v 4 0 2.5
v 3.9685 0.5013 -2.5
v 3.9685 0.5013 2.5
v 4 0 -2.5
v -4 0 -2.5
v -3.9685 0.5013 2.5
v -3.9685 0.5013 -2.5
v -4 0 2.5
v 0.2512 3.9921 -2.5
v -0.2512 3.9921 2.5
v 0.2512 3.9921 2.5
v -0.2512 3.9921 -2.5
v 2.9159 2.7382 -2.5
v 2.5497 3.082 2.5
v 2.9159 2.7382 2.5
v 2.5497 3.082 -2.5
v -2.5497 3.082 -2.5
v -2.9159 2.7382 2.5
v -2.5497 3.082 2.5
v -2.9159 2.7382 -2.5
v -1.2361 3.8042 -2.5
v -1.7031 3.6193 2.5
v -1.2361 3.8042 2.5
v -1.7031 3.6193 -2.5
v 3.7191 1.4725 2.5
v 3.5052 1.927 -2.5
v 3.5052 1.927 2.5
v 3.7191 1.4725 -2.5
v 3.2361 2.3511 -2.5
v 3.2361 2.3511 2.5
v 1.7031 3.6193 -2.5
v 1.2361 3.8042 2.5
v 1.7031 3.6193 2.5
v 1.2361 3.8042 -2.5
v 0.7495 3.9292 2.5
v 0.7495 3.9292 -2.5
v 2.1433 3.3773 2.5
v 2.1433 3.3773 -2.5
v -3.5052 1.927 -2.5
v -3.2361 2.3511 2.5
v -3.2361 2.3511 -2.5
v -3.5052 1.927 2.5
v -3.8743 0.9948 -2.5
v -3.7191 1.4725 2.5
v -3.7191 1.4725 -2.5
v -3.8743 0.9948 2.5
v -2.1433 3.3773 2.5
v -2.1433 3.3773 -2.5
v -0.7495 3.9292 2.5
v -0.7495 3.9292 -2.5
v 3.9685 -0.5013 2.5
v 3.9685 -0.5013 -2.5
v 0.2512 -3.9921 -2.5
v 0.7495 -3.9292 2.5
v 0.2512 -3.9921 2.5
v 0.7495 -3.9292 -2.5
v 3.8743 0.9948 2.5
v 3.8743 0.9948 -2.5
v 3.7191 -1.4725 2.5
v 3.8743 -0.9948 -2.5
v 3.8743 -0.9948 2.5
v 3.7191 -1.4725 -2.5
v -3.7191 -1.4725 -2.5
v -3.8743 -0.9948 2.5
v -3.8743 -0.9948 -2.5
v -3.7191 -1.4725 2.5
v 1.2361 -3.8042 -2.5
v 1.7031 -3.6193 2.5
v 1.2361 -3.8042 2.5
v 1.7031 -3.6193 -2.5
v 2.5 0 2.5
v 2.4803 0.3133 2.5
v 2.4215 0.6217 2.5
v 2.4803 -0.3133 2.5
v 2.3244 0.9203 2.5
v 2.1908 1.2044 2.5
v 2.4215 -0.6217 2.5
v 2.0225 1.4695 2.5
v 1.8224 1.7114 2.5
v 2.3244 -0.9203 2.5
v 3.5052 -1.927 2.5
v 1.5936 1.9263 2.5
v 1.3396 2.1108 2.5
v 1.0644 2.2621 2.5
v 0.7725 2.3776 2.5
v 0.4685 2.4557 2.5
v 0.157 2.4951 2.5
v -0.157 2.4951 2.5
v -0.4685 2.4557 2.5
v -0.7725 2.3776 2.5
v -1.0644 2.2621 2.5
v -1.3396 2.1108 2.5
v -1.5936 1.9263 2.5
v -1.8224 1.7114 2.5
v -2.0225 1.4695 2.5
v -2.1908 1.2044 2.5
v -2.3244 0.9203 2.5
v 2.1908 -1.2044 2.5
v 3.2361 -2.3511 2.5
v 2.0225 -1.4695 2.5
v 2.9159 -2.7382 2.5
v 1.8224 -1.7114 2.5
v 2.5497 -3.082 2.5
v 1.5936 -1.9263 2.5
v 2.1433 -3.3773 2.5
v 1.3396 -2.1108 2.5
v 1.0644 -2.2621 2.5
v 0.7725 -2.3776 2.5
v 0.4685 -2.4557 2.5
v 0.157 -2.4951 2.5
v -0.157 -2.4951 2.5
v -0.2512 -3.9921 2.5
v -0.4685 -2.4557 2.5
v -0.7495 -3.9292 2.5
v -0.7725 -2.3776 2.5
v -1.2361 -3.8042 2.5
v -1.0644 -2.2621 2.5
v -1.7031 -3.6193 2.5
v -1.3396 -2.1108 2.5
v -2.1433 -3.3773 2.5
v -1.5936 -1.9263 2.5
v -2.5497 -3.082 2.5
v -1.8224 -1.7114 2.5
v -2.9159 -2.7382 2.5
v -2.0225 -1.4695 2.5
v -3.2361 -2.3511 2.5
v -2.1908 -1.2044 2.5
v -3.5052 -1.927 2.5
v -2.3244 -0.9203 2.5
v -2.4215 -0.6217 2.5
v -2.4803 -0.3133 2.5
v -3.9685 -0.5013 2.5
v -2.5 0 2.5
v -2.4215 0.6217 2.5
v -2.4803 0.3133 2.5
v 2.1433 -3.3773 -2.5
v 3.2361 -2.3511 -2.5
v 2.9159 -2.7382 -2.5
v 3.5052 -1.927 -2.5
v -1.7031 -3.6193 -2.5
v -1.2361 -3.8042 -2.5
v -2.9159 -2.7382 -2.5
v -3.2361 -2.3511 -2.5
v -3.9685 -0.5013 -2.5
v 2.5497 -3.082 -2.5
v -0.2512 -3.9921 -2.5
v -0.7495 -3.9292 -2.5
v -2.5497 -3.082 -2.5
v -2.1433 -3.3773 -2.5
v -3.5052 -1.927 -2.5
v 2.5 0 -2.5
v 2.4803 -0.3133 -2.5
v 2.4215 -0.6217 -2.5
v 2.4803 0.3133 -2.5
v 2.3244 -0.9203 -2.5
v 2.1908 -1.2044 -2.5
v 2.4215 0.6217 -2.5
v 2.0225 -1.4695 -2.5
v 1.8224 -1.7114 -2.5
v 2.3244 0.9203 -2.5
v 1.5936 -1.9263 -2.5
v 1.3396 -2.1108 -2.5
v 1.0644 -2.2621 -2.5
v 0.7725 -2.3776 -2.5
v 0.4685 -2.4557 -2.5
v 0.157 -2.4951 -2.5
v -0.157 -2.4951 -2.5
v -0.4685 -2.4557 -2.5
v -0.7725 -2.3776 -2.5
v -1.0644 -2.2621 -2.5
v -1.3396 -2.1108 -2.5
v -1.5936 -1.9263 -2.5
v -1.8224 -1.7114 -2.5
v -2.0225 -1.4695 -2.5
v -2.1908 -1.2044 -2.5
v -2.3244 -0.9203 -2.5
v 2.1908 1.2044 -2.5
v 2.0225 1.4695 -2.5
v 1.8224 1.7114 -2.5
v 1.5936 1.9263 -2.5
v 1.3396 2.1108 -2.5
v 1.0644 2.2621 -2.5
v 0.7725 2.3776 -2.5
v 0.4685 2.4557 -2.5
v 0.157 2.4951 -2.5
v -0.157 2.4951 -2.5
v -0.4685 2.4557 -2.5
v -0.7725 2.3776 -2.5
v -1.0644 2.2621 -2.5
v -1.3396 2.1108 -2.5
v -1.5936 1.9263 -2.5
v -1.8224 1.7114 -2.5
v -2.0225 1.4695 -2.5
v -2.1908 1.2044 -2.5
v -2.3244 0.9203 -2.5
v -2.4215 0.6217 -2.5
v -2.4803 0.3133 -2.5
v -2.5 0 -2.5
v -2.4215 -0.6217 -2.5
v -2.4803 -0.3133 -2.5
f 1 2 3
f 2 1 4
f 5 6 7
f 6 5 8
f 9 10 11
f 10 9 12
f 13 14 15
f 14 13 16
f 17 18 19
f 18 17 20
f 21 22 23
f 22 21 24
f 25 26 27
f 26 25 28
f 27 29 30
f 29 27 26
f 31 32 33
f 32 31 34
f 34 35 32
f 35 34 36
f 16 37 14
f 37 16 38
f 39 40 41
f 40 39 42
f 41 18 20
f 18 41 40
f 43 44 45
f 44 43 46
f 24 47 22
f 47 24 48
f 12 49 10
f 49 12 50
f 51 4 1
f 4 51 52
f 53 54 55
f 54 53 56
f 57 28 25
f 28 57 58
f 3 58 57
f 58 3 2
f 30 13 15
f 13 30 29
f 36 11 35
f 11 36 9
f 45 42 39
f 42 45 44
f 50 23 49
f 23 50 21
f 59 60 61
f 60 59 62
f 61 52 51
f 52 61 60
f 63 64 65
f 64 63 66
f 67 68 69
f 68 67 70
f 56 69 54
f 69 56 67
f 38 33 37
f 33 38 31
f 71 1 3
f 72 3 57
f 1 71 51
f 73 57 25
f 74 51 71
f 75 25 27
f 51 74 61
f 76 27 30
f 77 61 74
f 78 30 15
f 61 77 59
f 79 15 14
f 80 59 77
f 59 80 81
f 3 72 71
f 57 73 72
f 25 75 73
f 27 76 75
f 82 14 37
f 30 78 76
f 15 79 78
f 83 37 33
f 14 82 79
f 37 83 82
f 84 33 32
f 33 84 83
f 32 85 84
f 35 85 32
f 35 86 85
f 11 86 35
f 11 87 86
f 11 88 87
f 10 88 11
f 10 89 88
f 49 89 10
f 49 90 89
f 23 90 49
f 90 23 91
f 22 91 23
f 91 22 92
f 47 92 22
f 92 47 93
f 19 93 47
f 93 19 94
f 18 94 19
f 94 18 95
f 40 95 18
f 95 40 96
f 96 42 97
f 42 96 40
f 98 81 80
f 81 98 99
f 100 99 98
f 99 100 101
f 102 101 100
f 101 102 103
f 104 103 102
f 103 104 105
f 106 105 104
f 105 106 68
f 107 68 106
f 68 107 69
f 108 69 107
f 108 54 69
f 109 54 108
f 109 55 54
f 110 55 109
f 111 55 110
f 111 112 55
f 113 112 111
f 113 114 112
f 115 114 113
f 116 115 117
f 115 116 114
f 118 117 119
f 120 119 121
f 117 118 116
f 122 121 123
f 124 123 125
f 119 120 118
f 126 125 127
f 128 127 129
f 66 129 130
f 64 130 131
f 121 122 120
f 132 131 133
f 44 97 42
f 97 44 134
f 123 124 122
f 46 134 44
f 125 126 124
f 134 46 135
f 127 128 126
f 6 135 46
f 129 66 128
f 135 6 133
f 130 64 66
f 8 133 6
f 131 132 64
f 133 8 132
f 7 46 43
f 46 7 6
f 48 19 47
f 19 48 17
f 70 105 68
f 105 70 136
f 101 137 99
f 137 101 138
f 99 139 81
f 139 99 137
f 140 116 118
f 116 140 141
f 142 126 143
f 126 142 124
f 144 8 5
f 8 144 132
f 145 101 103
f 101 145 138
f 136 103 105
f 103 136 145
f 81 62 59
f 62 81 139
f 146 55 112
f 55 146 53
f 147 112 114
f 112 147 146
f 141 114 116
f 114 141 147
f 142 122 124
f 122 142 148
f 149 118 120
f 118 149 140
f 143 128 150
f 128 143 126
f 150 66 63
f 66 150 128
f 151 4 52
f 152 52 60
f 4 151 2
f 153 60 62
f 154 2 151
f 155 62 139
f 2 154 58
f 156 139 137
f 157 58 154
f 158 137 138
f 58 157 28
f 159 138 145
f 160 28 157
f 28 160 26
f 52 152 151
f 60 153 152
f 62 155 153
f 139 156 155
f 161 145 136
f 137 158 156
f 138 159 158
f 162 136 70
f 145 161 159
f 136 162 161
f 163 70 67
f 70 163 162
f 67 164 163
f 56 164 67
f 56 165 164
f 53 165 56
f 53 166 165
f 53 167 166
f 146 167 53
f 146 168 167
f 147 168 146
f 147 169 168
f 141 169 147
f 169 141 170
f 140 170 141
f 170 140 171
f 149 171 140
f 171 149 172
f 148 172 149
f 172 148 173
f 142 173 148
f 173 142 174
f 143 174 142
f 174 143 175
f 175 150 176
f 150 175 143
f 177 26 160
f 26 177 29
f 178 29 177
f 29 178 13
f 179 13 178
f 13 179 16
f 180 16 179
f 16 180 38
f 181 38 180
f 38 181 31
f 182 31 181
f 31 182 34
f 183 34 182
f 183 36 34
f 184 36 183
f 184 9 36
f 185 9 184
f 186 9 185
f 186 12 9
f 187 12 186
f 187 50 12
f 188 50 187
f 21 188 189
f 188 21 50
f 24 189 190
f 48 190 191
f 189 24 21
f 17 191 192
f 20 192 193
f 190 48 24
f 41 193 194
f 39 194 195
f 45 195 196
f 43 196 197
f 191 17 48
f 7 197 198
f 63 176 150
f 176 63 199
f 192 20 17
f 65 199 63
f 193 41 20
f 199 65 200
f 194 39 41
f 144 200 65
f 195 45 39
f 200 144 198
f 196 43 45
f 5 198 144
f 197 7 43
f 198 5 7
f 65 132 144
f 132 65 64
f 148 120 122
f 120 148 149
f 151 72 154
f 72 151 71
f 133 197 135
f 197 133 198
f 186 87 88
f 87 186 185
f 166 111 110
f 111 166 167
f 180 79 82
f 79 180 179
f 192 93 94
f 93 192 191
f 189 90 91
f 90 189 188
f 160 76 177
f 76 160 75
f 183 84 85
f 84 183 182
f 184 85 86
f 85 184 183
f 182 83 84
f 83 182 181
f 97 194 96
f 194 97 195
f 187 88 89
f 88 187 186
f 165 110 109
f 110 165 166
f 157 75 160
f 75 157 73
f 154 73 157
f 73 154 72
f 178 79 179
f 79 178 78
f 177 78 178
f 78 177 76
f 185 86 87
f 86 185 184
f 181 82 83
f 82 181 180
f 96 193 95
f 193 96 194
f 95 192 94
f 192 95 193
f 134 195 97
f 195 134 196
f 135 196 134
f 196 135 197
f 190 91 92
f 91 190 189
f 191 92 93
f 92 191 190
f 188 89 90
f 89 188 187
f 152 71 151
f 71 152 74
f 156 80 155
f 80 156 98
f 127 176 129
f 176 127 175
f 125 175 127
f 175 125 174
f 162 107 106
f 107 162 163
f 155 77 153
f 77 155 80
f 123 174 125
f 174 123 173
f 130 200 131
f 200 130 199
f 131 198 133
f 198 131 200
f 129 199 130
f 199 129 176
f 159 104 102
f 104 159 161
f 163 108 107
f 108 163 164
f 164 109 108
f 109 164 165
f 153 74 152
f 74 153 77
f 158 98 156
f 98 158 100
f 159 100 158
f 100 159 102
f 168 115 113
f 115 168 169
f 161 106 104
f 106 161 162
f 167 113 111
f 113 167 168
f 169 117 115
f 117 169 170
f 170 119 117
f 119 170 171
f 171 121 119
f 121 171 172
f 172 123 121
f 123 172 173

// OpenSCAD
$fn = 50;


difference() {
	union() {
		translate(v = [0, 0, -2.5000000000]) {
			cylinder(h = 5, r = 4.0000000000);
		}
	}
	union() {
		translate(v = [0, 0, -100.0000000000]) {
			cylinder(h = 200, r = 2.5000000000);
		}
	}
}
